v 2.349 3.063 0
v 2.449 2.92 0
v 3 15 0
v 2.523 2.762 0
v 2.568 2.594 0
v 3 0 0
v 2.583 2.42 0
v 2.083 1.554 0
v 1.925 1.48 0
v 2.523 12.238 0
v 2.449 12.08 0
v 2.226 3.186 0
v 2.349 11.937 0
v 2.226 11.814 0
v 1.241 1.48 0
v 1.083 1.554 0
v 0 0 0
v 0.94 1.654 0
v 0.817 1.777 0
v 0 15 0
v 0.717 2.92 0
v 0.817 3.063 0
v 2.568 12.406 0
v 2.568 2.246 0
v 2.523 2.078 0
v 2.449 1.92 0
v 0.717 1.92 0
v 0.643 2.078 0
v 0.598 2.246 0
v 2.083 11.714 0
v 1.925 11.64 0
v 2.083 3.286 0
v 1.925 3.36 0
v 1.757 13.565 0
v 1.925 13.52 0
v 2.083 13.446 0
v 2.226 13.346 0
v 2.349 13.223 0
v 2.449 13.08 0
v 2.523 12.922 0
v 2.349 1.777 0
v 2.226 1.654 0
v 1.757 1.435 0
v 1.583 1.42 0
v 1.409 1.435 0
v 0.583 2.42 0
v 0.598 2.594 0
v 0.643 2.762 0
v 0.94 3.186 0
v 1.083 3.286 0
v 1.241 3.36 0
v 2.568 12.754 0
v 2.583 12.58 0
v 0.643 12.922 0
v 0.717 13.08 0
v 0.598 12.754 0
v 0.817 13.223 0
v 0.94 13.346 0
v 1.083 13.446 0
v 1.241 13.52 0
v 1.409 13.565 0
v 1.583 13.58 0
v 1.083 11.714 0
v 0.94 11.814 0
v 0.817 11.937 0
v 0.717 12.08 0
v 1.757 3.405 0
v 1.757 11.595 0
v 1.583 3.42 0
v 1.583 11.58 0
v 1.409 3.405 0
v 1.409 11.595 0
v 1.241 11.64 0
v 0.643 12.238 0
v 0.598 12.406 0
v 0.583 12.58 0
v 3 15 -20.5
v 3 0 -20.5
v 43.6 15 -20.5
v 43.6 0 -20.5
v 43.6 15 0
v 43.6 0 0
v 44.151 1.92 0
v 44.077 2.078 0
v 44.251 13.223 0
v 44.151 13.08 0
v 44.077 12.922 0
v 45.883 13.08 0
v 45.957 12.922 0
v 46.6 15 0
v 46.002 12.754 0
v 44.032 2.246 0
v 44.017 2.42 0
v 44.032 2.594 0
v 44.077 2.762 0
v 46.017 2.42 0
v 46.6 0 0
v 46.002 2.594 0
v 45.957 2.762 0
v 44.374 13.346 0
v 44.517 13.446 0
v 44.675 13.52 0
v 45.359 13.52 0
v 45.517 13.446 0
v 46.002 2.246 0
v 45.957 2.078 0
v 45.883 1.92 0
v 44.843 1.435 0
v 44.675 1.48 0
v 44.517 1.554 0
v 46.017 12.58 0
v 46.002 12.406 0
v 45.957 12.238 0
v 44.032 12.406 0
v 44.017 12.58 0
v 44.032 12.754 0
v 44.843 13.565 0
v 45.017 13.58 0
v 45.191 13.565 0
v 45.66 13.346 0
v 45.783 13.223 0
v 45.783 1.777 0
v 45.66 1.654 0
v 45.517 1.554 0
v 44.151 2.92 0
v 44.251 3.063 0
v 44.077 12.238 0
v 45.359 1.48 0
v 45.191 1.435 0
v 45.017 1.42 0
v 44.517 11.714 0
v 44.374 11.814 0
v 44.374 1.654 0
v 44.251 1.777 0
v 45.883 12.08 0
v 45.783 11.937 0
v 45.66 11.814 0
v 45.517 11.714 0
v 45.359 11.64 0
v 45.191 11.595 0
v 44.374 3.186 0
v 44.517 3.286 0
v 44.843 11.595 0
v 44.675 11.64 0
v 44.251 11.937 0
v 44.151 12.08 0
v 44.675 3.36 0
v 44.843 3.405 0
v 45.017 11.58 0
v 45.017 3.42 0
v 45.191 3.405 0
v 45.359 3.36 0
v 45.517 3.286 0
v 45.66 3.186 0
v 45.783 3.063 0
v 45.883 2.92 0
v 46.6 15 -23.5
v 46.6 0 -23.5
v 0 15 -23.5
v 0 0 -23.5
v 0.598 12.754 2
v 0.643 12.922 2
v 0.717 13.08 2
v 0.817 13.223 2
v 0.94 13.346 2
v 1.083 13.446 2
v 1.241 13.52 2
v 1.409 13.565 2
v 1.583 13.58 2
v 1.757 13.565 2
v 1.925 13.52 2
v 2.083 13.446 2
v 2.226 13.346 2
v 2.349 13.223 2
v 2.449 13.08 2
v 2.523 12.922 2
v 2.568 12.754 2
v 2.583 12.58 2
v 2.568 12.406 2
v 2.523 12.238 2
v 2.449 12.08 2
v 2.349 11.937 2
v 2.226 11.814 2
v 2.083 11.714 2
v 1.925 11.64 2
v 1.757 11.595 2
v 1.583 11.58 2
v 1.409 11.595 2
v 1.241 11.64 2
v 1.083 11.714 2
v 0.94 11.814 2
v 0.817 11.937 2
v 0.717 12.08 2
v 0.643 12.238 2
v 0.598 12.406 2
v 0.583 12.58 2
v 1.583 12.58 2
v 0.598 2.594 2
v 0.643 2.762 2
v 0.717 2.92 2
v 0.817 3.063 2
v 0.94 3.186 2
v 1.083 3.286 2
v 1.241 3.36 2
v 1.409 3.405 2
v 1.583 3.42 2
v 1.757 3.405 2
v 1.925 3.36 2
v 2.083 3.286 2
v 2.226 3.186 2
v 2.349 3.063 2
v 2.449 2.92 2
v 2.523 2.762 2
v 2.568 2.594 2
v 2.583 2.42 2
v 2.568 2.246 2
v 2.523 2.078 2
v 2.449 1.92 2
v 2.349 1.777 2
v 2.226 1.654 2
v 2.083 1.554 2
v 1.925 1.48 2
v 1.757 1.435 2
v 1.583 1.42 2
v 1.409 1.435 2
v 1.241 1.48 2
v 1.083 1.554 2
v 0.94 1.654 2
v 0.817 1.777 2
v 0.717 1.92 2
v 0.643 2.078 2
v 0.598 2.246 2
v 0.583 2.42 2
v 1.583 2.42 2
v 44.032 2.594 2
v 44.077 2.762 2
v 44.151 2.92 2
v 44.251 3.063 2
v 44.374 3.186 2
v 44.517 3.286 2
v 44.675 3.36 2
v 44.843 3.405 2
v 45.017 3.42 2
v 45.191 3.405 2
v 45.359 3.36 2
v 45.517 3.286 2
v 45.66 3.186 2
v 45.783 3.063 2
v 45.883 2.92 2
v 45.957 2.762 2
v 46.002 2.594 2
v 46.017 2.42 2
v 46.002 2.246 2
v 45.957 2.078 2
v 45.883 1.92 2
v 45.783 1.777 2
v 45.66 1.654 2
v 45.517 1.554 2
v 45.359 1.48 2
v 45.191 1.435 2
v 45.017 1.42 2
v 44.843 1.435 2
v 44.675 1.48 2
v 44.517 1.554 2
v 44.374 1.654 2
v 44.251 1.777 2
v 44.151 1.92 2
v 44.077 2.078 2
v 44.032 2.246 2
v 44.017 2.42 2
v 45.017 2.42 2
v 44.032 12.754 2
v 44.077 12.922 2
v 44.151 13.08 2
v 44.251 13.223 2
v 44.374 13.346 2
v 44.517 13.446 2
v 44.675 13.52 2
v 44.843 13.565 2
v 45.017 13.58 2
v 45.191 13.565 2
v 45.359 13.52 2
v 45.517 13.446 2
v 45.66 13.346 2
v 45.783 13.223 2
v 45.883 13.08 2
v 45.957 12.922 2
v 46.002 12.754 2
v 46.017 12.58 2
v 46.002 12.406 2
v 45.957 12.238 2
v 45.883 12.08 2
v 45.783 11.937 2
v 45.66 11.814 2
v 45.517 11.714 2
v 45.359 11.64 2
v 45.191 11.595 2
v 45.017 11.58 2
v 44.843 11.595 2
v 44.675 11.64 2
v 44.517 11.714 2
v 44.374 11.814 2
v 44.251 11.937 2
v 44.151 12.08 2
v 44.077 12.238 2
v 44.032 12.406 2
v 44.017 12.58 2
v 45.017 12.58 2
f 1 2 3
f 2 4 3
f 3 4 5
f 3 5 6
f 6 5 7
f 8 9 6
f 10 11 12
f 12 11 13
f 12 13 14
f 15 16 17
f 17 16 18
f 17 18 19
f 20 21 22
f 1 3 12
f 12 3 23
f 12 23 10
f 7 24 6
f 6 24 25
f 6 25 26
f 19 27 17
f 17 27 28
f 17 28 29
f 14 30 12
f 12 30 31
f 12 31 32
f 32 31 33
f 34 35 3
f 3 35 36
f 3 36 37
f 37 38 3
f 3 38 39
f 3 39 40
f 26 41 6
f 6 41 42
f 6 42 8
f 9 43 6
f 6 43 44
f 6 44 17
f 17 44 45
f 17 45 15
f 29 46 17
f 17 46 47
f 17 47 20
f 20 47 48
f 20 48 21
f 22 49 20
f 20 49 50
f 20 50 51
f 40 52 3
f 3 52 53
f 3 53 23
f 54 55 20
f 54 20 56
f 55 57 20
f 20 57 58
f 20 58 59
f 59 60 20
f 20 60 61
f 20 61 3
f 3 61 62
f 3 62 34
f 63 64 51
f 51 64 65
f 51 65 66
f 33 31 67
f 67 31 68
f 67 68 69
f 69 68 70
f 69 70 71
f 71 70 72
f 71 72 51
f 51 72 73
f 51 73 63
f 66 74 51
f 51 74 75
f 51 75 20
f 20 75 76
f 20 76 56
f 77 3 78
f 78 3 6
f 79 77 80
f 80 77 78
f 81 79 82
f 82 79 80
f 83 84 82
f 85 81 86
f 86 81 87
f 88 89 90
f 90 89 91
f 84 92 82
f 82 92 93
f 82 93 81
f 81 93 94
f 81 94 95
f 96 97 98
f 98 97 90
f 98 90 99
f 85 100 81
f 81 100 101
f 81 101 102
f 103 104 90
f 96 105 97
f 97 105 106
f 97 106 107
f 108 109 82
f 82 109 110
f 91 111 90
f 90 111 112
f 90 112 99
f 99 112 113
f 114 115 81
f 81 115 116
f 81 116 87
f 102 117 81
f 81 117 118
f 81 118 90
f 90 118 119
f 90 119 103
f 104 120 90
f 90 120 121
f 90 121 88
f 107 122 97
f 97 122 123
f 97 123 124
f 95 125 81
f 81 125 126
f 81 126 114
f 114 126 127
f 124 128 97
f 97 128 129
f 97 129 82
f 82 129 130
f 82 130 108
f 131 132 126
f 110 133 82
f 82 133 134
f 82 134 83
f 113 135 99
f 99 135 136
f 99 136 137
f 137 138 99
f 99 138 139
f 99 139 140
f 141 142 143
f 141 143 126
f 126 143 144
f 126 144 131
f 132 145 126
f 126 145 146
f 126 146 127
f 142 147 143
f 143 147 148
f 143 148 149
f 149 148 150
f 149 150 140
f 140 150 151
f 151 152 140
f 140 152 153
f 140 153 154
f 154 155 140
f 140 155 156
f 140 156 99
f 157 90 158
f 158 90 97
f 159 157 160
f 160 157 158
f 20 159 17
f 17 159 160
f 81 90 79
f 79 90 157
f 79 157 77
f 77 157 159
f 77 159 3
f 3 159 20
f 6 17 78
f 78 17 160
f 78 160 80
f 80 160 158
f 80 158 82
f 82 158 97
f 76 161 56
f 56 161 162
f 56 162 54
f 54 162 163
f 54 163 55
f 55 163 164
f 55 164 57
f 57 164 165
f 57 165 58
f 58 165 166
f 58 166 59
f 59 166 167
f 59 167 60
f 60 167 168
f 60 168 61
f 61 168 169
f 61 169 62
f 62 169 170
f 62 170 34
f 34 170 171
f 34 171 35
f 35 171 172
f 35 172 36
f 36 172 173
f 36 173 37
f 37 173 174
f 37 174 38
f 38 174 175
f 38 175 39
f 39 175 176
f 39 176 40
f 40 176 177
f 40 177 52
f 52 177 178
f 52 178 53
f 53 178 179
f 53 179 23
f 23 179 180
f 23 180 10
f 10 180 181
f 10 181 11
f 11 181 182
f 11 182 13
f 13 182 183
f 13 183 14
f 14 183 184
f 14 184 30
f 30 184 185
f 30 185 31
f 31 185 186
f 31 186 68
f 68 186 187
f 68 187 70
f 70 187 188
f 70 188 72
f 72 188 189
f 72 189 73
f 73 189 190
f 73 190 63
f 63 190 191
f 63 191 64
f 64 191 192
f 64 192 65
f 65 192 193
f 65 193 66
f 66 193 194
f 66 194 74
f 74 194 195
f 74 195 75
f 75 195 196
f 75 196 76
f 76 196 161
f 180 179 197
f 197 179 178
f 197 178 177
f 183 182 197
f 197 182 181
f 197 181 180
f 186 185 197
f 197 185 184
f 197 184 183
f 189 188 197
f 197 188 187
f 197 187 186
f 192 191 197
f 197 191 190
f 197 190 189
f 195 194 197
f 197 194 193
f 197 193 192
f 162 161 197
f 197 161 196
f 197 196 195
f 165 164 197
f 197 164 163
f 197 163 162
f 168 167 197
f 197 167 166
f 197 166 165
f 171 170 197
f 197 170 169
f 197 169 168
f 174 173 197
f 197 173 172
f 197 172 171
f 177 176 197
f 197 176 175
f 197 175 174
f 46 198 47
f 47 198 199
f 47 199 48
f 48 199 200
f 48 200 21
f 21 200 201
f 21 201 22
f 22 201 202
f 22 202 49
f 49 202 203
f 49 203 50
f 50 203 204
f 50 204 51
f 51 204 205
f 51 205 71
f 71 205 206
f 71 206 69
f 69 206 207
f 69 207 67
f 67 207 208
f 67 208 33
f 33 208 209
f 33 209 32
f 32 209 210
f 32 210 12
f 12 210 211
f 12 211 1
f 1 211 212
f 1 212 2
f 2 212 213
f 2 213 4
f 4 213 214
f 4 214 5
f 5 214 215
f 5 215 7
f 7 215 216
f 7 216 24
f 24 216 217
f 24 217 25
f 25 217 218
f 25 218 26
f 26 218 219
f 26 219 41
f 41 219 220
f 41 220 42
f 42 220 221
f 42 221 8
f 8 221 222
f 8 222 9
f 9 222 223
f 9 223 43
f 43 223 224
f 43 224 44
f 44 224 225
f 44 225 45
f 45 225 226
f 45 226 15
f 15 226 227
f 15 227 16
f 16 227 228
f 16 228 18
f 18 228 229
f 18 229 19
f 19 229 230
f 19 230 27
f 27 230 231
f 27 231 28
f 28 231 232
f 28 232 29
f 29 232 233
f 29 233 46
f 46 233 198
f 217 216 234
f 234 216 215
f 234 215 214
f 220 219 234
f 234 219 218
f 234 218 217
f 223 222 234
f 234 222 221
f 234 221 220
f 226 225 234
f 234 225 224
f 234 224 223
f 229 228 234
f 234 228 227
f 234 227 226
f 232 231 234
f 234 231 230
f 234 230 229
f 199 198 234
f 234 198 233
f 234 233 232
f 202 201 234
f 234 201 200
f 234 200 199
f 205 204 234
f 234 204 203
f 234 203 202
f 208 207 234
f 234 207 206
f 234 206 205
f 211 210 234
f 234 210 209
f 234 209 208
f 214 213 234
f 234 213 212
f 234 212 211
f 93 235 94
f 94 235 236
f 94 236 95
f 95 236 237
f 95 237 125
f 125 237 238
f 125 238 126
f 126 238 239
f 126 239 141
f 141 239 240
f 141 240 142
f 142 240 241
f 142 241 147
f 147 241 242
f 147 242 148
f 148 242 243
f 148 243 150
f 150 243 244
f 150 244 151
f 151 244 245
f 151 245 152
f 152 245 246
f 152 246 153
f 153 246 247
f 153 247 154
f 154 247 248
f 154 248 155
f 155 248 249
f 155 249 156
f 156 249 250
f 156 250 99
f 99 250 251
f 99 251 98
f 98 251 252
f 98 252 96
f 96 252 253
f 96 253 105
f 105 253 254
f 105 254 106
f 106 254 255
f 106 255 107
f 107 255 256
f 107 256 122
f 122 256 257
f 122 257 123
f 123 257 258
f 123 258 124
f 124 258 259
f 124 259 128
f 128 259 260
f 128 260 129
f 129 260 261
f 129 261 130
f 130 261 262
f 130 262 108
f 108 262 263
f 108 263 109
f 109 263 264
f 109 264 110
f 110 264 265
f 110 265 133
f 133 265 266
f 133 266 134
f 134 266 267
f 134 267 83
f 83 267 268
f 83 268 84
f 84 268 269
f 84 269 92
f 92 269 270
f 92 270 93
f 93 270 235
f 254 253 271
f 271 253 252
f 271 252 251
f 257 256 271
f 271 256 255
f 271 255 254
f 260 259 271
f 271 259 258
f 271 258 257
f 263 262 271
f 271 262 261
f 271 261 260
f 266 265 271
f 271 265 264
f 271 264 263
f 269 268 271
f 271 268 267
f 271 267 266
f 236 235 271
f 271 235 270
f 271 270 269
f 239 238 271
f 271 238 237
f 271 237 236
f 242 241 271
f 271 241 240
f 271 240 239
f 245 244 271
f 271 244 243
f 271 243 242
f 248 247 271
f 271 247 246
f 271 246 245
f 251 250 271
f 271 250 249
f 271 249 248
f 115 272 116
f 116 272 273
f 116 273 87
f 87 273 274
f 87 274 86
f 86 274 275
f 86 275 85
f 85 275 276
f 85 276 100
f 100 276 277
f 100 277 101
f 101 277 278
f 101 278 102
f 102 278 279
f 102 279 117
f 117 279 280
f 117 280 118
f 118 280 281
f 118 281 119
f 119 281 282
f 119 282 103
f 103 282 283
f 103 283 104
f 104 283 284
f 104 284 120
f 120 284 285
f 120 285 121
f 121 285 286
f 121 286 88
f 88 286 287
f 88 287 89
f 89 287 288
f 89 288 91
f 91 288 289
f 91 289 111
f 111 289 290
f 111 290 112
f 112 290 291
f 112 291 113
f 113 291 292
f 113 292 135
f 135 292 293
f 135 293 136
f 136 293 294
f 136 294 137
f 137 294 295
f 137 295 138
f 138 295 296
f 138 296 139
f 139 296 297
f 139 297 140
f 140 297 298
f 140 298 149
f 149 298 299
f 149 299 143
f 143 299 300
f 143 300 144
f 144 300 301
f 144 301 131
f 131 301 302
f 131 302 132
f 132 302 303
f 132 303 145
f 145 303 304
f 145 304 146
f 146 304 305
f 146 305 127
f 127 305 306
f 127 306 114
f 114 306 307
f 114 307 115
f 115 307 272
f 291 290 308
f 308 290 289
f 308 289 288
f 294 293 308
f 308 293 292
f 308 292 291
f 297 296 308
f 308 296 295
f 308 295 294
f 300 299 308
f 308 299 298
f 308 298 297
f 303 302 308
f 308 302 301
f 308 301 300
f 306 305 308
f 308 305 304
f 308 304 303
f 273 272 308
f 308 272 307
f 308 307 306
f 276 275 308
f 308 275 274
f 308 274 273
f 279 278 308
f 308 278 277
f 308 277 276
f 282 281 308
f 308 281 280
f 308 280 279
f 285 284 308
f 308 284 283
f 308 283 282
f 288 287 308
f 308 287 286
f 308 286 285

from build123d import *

# Parameters (mm, degrees)
BOSS_EXTRUDE2_DEPTH = 15
SKETCH4_R           = 1
BOSS_EXTRUDE3_DEPTH = 2


with BuildPart() as part:
    # Sketch2 → Boss-Extrude2 (new body)
    with BuildSketch(Plane(origin=(0, 0, 0), x_dir=(1, 0, 0), z_dir=(0, 1, 0))):
        Polygon((0, 0), (0, 23.5), (46.6, 23.5), (46.6, 0), (43.6, 0), (43.6, 20.5), (3, 20.5), (3, 0), align=None)
    extrude(amount=BOSS_EXTRUDE2_DEPTH)

    # Sketch4 → Boss-Extrude3 (add)
    with BuildSketch(Plane.XY):
        with Locations(Location((1.583, 2.42, 0), (0, 0, 180))):
            Circle(SKETCH4_R)
        with Locations(Location((1.583, 12.58, 0), (0, 0, 180))):
            Circle(SKETCH4_R)
        with Locations(Location((45.017, 12.58, 0), (0, 0, 180))):
            Circle(SKETCH4_R)
        with Locations(Location((45.017, 2.42, 0), (0, 0, 180))):
            Circle(SKETCH4_R)
    extrude(amount=BOSS_EXTRUDE3_DEPTH)


solid = part.part
